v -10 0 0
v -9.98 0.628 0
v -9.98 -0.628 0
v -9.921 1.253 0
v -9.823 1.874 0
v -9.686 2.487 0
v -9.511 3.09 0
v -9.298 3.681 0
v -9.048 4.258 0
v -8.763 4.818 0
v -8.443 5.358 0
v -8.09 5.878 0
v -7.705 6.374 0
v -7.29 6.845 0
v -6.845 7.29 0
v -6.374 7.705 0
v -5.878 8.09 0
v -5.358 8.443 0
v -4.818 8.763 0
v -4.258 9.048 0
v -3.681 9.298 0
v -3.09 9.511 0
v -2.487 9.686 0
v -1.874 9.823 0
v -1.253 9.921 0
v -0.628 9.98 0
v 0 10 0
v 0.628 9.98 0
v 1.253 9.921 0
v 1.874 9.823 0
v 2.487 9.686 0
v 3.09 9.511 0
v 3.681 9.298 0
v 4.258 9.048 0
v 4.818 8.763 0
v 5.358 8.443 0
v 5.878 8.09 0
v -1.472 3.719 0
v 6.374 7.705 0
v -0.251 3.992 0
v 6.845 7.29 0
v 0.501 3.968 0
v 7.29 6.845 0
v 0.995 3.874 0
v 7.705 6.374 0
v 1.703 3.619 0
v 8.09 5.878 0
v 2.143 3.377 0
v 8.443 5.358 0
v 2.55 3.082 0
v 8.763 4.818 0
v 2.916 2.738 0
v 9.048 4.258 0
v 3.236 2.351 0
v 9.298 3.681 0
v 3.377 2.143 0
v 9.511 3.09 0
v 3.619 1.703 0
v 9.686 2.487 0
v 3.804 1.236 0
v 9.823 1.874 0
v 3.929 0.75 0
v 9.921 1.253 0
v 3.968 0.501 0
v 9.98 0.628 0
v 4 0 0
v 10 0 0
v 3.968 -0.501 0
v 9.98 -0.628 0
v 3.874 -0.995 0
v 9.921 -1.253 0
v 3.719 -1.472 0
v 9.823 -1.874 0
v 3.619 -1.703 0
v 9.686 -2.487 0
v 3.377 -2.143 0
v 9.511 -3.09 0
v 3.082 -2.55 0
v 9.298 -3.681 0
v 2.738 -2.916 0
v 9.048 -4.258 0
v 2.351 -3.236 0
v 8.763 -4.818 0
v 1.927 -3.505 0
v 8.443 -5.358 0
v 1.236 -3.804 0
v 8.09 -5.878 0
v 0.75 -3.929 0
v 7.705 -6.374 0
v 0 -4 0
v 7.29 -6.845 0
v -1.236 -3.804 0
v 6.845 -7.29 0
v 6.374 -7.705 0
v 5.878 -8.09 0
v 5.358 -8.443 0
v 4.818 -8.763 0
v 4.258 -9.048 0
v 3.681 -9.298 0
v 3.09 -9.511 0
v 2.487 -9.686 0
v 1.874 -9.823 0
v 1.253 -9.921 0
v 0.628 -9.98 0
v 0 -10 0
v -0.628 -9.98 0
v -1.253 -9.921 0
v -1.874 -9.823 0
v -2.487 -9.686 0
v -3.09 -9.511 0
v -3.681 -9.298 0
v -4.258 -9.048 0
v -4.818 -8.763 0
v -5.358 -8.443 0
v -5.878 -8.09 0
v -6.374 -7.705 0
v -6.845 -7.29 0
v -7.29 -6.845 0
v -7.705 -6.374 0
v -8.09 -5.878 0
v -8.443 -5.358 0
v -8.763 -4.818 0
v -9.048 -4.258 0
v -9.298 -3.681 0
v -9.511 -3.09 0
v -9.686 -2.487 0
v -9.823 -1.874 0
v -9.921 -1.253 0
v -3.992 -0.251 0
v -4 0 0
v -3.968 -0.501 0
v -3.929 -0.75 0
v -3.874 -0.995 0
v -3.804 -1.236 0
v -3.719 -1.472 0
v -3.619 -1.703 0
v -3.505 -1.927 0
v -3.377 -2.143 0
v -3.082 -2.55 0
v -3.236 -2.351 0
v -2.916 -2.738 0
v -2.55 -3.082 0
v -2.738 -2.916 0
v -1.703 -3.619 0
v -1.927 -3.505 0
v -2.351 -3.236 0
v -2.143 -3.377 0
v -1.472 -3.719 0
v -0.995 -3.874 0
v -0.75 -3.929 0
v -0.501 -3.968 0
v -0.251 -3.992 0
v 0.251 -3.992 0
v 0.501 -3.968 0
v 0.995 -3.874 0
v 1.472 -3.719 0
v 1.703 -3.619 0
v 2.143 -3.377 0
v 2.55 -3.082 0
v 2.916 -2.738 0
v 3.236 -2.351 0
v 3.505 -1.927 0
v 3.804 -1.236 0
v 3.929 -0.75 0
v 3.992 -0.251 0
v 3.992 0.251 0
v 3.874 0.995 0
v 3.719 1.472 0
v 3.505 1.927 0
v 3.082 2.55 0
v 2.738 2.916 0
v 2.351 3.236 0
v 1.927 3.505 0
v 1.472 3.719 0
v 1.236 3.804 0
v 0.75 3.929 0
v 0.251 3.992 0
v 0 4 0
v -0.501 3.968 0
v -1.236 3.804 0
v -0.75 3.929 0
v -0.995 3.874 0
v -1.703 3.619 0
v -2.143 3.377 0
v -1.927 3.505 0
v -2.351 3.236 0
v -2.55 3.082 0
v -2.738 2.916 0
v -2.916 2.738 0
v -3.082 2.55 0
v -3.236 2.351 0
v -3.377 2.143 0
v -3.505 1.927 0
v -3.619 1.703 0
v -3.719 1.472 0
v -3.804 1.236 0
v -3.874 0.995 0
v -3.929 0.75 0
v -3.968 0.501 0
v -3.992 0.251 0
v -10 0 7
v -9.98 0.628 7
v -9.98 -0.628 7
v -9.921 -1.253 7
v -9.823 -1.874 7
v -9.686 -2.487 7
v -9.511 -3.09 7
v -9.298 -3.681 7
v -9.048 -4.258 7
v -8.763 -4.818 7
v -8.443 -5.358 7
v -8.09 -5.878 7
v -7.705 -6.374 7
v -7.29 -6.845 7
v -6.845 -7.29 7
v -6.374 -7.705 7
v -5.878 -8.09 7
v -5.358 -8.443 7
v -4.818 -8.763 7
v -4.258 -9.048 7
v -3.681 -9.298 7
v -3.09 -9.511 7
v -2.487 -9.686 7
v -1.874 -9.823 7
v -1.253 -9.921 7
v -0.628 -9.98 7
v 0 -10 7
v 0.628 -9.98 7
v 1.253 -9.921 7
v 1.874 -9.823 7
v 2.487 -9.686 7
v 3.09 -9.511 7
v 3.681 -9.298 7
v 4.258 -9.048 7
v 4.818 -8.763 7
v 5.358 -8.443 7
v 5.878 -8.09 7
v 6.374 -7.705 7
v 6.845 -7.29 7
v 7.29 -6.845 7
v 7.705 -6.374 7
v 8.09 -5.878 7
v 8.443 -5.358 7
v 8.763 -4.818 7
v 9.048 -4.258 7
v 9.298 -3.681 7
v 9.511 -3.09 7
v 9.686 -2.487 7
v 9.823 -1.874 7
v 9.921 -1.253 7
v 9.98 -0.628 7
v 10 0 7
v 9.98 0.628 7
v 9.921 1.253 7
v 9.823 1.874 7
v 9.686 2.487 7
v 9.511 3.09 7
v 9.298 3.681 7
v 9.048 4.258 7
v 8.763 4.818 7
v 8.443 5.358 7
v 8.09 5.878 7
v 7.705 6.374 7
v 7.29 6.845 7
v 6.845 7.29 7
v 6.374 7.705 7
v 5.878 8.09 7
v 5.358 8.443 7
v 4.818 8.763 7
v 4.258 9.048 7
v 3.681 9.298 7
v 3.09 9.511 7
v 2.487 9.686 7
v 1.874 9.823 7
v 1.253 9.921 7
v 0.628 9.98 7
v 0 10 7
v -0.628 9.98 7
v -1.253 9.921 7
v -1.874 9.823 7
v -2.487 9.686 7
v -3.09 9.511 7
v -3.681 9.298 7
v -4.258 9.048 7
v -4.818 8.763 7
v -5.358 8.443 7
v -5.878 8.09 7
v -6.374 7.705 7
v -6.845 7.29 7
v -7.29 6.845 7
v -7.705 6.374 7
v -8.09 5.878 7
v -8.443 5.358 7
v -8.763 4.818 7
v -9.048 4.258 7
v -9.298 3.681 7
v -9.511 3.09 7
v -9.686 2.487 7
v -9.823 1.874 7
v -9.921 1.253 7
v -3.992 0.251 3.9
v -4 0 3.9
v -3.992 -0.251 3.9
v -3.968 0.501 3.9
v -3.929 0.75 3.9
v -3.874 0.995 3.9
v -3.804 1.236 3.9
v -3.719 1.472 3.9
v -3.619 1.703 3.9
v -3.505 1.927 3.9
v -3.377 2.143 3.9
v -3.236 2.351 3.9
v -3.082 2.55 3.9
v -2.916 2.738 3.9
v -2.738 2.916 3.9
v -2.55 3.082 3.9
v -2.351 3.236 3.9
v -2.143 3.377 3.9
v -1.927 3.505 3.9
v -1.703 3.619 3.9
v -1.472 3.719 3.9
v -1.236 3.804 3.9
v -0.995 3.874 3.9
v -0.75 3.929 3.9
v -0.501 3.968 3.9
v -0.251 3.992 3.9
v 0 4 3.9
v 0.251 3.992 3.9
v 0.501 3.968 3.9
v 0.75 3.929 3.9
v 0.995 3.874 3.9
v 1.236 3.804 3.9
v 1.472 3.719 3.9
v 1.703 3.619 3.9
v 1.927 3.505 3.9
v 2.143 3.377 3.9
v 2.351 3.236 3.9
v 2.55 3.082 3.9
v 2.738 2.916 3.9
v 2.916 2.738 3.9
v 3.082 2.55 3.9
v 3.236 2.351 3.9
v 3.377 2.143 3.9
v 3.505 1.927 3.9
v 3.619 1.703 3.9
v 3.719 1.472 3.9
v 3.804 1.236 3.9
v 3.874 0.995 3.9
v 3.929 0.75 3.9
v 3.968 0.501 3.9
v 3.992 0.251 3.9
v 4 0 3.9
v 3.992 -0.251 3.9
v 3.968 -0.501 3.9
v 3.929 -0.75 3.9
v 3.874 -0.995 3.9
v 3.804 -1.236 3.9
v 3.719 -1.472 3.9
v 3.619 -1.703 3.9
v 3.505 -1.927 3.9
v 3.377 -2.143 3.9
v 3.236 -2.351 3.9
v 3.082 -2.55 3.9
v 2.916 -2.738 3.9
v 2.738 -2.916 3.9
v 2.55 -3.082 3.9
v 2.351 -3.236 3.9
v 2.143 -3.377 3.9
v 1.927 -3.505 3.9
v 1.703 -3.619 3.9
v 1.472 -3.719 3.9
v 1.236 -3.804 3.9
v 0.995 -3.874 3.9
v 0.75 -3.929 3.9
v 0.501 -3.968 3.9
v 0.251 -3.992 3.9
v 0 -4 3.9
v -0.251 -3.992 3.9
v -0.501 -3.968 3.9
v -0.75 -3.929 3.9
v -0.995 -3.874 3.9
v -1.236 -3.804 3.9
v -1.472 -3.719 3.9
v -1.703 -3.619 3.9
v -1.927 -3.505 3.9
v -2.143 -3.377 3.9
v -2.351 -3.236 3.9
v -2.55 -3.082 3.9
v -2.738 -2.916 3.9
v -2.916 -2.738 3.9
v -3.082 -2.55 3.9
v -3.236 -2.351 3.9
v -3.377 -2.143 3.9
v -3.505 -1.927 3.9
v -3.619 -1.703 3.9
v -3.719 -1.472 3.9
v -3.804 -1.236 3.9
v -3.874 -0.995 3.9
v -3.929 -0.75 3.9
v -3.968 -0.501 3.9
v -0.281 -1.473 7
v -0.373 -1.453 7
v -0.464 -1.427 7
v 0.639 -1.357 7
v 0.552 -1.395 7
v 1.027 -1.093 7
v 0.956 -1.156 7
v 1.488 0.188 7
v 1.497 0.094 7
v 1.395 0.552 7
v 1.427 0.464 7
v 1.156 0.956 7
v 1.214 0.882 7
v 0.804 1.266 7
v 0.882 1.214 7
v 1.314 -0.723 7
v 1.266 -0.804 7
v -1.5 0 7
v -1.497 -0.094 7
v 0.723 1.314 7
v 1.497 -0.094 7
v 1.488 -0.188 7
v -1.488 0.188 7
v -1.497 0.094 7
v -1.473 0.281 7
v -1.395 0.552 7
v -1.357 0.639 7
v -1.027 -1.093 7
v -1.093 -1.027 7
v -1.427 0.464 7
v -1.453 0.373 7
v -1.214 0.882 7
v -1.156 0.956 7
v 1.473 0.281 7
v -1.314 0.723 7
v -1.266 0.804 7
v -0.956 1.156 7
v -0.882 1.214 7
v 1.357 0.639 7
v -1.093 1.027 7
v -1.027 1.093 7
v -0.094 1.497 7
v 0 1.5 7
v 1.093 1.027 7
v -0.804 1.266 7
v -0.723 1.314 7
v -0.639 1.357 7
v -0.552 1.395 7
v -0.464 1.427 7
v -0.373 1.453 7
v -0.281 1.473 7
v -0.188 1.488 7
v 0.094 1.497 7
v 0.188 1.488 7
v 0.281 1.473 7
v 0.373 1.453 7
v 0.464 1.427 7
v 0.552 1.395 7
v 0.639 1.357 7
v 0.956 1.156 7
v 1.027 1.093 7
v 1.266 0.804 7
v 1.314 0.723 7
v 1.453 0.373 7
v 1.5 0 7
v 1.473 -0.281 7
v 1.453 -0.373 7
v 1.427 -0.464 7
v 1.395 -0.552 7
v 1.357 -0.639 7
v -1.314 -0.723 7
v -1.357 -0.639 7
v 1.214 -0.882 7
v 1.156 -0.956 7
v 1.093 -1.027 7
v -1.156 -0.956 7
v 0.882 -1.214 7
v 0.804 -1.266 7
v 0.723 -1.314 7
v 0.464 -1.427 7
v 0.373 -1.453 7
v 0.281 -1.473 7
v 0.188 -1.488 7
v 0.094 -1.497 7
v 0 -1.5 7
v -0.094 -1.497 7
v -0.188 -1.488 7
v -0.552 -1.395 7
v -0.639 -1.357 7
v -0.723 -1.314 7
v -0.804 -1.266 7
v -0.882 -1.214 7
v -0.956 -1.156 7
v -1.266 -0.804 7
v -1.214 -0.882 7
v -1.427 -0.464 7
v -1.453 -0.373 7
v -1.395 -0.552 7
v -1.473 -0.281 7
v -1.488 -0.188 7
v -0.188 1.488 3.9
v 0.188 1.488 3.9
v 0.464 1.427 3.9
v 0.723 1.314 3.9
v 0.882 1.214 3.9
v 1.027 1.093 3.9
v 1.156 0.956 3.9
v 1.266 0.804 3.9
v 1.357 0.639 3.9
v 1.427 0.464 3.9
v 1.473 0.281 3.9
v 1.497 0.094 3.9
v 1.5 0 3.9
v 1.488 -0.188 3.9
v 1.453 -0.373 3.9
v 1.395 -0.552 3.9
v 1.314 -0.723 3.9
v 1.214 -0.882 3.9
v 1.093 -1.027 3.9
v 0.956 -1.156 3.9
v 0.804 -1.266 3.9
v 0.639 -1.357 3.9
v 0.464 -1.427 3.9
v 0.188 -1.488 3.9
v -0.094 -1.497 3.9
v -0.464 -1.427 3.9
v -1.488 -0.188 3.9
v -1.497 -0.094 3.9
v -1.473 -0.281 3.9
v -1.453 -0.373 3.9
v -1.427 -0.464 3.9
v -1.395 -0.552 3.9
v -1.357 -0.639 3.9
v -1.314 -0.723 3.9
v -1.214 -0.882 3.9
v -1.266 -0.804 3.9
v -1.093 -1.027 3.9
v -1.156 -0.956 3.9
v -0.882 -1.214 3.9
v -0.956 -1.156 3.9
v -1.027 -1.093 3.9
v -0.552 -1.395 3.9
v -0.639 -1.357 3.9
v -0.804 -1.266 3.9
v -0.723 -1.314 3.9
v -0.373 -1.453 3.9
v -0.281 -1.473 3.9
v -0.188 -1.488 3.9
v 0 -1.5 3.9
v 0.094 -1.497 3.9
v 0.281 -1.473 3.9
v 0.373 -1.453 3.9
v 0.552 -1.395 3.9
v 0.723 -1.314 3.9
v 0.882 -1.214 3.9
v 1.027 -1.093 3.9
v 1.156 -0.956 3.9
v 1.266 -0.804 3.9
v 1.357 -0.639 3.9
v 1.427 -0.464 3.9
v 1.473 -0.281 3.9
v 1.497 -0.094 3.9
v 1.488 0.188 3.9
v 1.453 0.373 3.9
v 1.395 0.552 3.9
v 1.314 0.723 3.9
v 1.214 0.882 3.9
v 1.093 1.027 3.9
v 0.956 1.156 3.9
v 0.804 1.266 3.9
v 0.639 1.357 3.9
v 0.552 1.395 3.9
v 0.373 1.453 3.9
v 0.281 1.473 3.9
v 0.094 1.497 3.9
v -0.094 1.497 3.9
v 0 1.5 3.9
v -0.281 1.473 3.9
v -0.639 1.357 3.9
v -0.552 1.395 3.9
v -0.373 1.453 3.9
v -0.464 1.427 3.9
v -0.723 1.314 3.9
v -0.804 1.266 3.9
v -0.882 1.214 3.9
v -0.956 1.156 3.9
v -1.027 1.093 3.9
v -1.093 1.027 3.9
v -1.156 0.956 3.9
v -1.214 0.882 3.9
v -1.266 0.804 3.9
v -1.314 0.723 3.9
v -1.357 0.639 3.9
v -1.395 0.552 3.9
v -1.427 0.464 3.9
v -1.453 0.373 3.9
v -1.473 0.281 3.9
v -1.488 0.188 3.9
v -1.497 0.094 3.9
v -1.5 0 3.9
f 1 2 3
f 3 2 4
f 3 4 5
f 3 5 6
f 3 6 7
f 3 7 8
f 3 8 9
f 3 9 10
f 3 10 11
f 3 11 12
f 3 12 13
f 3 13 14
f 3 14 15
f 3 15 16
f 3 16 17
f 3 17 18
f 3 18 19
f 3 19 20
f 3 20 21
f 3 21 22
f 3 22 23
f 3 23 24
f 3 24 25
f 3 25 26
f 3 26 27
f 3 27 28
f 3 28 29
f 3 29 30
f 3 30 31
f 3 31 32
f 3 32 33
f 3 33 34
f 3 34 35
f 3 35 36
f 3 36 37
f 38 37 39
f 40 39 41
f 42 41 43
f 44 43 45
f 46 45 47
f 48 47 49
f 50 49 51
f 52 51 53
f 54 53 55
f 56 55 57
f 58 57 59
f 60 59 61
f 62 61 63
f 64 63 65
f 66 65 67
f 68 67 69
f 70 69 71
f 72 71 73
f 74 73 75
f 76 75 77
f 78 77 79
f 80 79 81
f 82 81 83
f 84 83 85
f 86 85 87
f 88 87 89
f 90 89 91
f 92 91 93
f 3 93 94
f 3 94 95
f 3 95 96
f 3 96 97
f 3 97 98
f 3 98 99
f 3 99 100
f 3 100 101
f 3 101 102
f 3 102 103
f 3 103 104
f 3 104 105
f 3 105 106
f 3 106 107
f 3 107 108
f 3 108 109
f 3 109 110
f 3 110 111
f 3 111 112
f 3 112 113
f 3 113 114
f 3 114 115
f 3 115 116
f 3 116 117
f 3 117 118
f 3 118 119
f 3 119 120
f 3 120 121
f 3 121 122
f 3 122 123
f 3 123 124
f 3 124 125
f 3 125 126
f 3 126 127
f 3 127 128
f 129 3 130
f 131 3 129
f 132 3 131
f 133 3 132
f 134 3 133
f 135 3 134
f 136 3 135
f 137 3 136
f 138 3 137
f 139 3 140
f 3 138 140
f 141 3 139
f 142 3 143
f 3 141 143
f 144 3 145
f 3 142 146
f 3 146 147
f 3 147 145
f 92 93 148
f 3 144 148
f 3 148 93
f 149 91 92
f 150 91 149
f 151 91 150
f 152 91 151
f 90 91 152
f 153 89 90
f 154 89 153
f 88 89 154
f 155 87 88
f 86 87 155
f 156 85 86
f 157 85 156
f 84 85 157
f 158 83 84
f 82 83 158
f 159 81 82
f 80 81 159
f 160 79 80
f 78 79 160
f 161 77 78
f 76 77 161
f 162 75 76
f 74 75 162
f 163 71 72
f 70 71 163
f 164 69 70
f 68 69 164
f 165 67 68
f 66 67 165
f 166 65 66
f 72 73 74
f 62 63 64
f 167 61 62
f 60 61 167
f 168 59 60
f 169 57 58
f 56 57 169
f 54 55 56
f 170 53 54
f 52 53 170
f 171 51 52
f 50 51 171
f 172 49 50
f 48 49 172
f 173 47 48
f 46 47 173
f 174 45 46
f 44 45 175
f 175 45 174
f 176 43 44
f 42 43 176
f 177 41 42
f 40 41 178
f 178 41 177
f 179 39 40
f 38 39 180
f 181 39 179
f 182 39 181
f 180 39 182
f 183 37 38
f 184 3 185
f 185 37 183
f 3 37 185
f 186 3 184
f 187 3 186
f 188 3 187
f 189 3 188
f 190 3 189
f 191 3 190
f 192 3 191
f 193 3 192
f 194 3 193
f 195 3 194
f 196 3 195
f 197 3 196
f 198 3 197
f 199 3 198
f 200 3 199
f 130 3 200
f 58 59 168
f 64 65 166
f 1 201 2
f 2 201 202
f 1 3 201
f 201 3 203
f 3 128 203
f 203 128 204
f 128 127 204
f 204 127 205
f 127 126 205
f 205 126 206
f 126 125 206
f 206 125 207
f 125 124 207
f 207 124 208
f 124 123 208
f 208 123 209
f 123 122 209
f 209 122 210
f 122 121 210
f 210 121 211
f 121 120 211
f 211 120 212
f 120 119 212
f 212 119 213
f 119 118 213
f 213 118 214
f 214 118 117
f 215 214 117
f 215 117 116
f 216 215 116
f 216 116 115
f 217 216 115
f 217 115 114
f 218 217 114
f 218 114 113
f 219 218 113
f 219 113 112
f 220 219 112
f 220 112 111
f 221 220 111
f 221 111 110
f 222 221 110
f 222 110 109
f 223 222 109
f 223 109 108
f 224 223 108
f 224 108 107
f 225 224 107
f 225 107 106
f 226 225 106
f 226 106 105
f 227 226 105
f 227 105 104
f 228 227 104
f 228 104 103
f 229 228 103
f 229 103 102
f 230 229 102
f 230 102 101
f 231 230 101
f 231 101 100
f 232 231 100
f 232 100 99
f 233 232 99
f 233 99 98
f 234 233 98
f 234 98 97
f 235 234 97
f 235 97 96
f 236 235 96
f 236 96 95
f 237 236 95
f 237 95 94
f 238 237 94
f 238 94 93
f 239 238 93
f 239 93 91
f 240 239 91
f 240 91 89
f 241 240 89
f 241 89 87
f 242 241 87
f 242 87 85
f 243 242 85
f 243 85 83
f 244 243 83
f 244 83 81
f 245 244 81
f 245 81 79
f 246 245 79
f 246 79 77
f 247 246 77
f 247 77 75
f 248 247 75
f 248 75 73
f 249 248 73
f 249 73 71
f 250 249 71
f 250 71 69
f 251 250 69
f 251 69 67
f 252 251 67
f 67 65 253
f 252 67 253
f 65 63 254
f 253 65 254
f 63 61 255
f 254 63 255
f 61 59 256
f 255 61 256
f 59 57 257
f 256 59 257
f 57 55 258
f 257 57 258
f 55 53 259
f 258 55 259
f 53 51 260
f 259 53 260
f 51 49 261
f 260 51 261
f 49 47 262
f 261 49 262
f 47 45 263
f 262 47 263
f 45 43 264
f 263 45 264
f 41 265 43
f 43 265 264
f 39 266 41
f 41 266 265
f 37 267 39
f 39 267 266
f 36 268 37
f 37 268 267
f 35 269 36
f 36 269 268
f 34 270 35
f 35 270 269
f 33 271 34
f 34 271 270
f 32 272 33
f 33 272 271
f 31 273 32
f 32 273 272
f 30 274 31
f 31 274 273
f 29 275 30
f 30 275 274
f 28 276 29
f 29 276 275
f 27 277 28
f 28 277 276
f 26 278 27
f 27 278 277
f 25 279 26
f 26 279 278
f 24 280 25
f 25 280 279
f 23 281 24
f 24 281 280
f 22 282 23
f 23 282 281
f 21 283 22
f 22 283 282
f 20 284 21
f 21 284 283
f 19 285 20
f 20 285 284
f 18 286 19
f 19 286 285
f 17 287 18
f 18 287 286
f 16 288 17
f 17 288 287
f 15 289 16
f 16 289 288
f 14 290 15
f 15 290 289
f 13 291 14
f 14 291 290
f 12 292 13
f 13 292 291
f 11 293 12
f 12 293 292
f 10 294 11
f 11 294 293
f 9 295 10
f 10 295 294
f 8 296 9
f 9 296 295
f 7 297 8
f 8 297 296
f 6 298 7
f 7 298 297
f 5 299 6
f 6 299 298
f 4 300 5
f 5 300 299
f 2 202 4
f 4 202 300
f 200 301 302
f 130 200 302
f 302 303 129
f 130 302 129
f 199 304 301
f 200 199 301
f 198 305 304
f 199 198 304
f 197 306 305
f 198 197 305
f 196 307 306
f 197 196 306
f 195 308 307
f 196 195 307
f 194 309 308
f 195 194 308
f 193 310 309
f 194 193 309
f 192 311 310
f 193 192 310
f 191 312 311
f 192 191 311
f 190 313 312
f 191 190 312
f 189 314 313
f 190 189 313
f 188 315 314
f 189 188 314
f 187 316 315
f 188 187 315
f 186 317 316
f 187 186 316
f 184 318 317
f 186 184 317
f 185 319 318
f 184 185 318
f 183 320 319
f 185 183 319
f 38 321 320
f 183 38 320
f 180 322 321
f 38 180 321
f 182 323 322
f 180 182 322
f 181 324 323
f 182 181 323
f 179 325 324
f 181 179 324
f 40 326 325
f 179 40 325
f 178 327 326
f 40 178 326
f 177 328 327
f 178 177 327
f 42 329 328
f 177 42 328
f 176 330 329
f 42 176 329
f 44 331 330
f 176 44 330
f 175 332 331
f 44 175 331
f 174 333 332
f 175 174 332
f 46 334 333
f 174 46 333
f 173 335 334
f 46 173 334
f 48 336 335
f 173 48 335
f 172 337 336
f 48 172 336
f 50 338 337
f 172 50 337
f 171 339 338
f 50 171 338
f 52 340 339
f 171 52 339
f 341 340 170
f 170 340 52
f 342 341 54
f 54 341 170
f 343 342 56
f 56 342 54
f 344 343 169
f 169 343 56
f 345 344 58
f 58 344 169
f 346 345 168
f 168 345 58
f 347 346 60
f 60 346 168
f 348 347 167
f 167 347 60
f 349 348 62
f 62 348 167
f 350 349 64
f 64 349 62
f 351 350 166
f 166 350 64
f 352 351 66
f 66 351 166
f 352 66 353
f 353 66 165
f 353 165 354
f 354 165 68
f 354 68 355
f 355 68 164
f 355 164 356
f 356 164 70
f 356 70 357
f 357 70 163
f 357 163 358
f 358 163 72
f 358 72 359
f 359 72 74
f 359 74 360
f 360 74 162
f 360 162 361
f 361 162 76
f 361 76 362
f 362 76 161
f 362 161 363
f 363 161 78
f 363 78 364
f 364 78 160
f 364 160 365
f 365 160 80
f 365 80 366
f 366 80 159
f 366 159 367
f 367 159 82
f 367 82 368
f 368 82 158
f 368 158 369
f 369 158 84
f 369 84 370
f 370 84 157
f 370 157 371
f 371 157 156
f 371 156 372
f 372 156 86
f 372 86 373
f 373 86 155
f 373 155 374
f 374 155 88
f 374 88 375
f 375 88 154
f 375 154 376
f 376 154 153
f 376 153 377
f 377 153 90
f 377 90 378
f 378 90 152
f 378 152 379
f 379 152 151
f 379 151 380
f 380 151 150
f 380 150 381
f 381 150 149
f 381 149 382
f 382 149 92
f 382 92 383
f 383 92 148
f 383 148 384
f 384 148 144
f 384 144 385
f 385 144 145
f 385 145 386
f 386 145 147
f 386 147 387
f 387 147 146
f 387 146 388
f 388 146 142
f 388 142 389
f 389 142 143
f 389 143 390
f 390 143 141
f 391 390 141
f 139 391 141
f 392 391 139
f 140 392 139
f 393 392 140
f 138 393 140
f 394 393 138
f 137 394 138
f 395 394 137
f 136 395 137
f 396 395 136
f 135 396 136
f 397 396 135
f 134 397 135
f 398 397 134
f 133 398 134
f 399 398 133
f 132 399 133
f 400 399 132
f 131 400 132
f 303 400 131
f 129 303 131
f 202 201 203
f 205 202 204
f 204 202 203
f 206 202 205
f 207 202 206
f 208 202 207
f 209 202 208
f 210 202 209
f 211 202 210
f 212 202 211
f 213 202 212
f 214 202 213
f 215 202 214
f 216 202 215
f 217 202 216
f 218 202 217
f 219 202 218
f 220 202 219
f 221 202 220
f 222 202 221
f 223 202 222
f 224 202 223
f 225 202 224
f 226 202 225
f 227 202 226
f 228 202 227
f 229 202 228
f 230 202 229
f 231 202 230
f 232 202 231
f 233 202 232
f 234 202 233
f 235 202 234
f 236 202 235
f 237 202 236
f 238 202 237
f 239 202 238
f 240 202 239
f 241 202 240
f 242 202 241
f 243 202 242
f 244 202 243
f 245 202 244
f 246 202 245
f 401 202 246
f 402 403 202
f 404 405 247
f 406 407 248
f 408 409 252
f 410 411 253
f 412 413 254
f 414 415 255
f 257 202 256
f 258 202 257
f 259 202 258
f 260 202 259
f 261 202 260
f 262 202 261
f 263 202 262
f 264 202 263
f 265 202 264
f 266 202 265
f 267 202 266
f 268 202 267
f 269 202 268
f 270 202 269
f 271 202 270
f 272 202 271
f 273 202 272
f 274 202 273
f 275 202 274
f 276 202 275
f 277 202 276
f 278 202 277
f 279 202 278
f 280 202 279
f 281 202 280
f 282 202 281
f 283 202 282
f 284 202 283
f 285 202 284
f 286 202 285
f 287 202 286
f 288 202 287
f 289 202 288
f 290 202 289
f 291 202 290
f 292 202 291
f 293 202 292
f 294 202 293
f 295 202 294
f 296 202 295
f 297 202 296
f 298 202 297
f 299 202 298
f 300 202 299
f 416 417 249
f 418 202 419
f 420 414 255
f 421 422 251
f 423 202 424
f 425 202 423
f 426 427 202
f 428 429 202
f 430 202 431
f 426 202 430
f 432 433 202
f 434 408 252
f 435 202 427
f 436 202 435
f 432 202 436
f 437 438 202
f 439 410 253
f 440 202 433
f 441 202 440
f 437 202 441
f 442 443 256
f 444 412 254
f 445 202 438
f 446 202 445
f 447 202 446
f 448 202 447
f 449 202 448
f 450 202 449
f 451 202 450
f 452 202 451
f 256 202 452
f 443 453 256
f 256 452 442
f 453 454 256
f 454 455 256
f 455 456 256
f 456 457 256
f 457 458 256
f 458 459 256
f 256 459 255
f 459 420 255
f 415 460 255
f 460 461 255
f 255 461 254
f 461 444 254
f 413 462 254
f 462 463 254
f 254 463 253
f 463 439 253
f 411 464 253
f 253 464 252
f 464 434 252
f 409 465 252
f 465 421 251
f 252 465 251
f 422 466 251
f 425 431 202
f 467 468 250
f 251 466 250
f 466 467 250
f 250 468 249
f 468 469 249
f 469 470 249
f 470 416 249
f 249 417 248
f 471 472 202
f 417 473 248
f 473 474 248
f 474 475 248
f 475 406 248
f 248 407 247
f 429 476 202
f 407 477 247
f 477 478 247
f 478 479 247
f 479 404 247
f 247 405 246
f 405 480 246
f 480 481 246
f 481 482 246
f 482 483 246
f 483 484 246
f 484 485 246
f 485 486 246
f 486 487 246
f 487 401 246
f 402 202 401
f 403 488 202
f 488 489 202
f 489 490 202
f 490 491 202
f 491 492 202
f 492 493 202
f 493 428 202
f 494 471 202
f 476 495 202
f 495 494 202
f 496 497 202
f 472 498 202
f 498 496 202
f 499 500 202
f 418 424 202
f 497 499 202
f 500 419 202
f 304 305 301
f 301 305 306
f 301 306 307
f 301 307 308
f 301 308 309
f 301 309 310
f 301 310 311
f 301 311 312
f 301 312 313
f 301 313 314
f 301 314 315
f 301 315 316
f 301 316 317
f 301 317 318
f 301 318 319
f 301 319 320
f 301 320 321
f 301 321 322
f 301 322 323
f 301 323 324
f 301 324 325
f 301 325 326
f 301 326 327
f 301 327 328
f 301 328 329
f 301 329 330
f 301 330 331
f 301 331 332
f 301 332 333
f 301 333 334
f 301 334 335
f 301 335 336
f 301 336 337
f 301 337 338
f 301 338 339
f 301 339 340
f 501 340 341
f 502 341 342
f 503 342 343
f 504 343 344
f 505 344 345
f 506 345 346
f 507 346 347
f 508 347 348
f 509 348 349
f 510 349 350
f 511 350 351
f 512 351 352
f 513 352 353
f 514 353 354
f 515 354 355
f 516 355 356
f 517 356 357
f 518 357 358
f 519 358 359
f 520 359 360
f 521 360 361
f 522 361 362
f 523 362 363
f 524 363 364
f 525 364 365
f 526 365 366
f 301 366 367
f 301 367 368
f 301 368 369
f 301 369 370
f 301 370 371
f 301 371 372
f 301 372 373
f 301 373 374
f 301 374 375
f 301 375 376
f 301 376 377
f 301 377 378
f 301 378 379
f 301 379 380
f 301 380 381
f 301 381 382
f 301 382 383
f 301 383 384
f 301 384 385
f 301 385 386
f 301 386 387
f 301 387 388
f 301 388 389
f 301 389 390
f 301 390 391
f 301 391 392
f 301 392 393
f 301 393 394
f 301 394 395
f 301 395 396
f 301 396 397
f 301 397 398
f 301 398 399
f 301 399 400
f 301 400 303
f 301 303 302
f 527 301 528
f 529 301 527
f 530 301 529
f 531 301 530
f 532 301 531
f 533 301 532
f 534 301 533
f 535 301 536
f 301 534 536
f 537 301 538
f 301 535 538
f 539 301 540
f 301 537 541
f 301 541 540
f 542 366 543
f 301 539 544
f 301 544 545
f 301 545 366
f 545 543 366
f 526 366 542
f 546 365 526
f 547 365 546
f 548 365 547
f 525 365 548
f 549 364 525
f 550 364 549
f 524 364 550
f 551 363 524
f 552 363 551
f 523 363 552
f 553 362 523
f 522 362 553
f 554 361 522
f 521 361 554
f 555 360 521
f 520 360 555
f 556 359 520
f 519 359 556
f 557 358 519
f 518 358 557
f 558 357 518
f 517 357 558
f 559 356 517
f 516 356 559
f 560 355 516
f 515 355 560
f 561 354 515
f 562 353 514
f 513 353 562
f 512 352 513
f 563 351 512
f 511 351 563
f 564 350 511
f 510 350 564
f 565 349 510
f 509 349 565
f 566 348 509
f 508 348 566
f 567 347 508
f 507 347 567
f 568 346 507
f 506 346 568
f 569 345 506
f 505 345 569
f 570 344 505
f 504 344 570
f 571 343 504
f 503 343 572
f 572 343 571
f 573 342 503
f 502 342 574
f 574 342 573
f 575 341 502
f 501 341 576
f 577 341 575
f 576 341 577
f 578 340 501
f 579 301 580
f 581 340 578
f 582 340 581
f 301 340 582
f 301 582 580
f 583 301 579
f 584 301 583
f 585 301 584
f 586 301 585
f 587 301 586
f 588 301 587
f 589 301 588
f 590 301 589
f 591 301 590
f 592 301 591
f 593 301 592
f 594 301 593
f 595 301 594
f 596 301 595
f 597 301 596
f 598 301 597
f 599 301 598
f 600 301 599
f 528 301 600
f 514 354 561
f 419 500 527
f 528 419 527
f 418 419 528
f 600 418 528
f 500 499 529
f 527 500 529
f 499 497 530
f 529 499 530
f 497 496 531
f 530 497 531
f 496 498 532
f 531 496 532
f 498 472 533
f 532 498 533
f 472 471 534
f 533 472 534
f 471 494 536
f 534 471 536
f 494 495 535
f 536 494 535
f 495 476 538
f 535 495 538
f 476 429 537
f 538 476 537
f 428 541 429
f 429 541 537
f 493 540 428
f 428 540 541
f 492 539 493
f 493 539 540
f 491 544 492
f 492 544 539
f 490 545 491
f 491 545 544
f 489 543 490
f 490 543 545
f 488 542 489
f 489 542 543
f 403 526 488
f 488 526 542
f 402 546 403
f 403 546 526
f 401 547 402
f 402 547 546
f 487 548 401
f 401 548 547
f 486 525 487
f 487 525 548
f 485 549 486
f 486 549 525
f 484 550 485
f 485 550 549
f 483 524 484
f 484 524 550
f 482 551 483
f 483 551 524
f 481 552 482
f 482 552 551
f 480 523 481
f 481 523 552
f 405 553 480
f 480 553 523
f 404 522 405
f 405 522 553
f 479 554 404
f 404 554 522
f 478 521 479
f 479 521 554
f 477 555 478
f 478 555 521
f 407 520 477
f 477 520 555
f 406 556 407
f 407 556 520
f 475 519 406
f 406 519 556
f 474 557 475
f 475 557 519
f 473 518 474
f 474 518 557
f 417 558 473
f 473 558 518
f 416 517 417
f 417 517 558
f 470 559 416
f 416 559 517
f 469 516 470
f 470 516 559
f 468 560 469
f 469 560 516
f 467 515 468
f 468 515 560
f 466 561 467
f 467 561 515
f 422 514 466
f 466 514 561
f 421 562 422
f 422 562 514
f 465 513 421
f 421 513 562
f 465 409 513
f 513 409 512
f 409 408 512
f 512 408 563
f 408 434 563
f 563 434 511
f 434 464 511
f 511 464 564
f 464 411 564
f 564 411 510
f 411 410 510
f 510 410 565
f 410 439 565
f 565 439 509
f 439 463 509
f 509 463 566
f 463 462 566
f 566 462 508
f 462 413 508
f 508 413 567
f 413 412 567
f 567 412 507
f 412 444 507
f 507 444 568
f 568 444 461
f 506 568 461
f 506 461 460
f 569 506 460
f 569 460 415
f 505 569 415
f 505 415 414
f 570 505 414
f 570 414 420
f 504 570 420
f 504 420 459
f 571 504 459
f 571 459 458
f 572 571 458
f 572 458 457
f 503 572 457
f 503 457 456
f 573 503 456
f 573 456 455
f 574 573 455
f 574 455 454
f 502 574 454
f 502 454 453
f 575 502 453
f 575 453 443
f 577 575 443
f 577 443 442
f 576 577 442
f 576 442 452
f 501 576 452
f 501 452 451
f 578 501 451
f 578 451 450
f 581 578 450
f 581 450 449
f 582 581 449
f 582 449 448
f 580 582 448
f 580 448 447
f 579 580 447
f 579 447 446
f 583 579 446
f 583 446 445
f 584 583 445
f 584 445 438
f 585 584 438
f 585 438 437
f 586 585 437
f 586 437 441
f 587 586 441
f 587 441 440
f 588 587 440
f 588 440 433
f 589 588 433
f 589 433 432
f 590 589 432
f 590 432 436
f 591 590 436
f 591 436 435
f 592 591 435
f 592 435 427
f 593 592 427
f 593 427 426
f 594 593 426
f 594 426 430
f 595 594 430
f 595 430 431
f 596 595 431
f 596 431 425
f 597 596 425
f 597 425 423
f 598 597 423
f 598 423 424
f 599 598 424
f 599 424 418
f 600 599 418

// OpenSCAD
/*
Projet ReprapJeanne

Sorte de rondelle pour que les têtes de vis
sous le plateau ne touchent pas directement le sol

github: https://github.com/gnieark/reprapJeanne
wiki https://mail.jeannedhack.org/wicked/display.php?page=reprap_geante

By Gnieark https://blog-du-grouik.tinad.fr
& TranKILLoman   

License GNU-GPL V3

*/
difference(){
	cylinder(r=10,h=7,$fn=100);
	union(){
		//nuts hole
		translate([0,0,-0.1])
			cylinder(r=4,h=4,$fn=100);
		translate([0,0,-0.1])
			cylinder(r=1.5,h=15,$fn=100);

	}
}
